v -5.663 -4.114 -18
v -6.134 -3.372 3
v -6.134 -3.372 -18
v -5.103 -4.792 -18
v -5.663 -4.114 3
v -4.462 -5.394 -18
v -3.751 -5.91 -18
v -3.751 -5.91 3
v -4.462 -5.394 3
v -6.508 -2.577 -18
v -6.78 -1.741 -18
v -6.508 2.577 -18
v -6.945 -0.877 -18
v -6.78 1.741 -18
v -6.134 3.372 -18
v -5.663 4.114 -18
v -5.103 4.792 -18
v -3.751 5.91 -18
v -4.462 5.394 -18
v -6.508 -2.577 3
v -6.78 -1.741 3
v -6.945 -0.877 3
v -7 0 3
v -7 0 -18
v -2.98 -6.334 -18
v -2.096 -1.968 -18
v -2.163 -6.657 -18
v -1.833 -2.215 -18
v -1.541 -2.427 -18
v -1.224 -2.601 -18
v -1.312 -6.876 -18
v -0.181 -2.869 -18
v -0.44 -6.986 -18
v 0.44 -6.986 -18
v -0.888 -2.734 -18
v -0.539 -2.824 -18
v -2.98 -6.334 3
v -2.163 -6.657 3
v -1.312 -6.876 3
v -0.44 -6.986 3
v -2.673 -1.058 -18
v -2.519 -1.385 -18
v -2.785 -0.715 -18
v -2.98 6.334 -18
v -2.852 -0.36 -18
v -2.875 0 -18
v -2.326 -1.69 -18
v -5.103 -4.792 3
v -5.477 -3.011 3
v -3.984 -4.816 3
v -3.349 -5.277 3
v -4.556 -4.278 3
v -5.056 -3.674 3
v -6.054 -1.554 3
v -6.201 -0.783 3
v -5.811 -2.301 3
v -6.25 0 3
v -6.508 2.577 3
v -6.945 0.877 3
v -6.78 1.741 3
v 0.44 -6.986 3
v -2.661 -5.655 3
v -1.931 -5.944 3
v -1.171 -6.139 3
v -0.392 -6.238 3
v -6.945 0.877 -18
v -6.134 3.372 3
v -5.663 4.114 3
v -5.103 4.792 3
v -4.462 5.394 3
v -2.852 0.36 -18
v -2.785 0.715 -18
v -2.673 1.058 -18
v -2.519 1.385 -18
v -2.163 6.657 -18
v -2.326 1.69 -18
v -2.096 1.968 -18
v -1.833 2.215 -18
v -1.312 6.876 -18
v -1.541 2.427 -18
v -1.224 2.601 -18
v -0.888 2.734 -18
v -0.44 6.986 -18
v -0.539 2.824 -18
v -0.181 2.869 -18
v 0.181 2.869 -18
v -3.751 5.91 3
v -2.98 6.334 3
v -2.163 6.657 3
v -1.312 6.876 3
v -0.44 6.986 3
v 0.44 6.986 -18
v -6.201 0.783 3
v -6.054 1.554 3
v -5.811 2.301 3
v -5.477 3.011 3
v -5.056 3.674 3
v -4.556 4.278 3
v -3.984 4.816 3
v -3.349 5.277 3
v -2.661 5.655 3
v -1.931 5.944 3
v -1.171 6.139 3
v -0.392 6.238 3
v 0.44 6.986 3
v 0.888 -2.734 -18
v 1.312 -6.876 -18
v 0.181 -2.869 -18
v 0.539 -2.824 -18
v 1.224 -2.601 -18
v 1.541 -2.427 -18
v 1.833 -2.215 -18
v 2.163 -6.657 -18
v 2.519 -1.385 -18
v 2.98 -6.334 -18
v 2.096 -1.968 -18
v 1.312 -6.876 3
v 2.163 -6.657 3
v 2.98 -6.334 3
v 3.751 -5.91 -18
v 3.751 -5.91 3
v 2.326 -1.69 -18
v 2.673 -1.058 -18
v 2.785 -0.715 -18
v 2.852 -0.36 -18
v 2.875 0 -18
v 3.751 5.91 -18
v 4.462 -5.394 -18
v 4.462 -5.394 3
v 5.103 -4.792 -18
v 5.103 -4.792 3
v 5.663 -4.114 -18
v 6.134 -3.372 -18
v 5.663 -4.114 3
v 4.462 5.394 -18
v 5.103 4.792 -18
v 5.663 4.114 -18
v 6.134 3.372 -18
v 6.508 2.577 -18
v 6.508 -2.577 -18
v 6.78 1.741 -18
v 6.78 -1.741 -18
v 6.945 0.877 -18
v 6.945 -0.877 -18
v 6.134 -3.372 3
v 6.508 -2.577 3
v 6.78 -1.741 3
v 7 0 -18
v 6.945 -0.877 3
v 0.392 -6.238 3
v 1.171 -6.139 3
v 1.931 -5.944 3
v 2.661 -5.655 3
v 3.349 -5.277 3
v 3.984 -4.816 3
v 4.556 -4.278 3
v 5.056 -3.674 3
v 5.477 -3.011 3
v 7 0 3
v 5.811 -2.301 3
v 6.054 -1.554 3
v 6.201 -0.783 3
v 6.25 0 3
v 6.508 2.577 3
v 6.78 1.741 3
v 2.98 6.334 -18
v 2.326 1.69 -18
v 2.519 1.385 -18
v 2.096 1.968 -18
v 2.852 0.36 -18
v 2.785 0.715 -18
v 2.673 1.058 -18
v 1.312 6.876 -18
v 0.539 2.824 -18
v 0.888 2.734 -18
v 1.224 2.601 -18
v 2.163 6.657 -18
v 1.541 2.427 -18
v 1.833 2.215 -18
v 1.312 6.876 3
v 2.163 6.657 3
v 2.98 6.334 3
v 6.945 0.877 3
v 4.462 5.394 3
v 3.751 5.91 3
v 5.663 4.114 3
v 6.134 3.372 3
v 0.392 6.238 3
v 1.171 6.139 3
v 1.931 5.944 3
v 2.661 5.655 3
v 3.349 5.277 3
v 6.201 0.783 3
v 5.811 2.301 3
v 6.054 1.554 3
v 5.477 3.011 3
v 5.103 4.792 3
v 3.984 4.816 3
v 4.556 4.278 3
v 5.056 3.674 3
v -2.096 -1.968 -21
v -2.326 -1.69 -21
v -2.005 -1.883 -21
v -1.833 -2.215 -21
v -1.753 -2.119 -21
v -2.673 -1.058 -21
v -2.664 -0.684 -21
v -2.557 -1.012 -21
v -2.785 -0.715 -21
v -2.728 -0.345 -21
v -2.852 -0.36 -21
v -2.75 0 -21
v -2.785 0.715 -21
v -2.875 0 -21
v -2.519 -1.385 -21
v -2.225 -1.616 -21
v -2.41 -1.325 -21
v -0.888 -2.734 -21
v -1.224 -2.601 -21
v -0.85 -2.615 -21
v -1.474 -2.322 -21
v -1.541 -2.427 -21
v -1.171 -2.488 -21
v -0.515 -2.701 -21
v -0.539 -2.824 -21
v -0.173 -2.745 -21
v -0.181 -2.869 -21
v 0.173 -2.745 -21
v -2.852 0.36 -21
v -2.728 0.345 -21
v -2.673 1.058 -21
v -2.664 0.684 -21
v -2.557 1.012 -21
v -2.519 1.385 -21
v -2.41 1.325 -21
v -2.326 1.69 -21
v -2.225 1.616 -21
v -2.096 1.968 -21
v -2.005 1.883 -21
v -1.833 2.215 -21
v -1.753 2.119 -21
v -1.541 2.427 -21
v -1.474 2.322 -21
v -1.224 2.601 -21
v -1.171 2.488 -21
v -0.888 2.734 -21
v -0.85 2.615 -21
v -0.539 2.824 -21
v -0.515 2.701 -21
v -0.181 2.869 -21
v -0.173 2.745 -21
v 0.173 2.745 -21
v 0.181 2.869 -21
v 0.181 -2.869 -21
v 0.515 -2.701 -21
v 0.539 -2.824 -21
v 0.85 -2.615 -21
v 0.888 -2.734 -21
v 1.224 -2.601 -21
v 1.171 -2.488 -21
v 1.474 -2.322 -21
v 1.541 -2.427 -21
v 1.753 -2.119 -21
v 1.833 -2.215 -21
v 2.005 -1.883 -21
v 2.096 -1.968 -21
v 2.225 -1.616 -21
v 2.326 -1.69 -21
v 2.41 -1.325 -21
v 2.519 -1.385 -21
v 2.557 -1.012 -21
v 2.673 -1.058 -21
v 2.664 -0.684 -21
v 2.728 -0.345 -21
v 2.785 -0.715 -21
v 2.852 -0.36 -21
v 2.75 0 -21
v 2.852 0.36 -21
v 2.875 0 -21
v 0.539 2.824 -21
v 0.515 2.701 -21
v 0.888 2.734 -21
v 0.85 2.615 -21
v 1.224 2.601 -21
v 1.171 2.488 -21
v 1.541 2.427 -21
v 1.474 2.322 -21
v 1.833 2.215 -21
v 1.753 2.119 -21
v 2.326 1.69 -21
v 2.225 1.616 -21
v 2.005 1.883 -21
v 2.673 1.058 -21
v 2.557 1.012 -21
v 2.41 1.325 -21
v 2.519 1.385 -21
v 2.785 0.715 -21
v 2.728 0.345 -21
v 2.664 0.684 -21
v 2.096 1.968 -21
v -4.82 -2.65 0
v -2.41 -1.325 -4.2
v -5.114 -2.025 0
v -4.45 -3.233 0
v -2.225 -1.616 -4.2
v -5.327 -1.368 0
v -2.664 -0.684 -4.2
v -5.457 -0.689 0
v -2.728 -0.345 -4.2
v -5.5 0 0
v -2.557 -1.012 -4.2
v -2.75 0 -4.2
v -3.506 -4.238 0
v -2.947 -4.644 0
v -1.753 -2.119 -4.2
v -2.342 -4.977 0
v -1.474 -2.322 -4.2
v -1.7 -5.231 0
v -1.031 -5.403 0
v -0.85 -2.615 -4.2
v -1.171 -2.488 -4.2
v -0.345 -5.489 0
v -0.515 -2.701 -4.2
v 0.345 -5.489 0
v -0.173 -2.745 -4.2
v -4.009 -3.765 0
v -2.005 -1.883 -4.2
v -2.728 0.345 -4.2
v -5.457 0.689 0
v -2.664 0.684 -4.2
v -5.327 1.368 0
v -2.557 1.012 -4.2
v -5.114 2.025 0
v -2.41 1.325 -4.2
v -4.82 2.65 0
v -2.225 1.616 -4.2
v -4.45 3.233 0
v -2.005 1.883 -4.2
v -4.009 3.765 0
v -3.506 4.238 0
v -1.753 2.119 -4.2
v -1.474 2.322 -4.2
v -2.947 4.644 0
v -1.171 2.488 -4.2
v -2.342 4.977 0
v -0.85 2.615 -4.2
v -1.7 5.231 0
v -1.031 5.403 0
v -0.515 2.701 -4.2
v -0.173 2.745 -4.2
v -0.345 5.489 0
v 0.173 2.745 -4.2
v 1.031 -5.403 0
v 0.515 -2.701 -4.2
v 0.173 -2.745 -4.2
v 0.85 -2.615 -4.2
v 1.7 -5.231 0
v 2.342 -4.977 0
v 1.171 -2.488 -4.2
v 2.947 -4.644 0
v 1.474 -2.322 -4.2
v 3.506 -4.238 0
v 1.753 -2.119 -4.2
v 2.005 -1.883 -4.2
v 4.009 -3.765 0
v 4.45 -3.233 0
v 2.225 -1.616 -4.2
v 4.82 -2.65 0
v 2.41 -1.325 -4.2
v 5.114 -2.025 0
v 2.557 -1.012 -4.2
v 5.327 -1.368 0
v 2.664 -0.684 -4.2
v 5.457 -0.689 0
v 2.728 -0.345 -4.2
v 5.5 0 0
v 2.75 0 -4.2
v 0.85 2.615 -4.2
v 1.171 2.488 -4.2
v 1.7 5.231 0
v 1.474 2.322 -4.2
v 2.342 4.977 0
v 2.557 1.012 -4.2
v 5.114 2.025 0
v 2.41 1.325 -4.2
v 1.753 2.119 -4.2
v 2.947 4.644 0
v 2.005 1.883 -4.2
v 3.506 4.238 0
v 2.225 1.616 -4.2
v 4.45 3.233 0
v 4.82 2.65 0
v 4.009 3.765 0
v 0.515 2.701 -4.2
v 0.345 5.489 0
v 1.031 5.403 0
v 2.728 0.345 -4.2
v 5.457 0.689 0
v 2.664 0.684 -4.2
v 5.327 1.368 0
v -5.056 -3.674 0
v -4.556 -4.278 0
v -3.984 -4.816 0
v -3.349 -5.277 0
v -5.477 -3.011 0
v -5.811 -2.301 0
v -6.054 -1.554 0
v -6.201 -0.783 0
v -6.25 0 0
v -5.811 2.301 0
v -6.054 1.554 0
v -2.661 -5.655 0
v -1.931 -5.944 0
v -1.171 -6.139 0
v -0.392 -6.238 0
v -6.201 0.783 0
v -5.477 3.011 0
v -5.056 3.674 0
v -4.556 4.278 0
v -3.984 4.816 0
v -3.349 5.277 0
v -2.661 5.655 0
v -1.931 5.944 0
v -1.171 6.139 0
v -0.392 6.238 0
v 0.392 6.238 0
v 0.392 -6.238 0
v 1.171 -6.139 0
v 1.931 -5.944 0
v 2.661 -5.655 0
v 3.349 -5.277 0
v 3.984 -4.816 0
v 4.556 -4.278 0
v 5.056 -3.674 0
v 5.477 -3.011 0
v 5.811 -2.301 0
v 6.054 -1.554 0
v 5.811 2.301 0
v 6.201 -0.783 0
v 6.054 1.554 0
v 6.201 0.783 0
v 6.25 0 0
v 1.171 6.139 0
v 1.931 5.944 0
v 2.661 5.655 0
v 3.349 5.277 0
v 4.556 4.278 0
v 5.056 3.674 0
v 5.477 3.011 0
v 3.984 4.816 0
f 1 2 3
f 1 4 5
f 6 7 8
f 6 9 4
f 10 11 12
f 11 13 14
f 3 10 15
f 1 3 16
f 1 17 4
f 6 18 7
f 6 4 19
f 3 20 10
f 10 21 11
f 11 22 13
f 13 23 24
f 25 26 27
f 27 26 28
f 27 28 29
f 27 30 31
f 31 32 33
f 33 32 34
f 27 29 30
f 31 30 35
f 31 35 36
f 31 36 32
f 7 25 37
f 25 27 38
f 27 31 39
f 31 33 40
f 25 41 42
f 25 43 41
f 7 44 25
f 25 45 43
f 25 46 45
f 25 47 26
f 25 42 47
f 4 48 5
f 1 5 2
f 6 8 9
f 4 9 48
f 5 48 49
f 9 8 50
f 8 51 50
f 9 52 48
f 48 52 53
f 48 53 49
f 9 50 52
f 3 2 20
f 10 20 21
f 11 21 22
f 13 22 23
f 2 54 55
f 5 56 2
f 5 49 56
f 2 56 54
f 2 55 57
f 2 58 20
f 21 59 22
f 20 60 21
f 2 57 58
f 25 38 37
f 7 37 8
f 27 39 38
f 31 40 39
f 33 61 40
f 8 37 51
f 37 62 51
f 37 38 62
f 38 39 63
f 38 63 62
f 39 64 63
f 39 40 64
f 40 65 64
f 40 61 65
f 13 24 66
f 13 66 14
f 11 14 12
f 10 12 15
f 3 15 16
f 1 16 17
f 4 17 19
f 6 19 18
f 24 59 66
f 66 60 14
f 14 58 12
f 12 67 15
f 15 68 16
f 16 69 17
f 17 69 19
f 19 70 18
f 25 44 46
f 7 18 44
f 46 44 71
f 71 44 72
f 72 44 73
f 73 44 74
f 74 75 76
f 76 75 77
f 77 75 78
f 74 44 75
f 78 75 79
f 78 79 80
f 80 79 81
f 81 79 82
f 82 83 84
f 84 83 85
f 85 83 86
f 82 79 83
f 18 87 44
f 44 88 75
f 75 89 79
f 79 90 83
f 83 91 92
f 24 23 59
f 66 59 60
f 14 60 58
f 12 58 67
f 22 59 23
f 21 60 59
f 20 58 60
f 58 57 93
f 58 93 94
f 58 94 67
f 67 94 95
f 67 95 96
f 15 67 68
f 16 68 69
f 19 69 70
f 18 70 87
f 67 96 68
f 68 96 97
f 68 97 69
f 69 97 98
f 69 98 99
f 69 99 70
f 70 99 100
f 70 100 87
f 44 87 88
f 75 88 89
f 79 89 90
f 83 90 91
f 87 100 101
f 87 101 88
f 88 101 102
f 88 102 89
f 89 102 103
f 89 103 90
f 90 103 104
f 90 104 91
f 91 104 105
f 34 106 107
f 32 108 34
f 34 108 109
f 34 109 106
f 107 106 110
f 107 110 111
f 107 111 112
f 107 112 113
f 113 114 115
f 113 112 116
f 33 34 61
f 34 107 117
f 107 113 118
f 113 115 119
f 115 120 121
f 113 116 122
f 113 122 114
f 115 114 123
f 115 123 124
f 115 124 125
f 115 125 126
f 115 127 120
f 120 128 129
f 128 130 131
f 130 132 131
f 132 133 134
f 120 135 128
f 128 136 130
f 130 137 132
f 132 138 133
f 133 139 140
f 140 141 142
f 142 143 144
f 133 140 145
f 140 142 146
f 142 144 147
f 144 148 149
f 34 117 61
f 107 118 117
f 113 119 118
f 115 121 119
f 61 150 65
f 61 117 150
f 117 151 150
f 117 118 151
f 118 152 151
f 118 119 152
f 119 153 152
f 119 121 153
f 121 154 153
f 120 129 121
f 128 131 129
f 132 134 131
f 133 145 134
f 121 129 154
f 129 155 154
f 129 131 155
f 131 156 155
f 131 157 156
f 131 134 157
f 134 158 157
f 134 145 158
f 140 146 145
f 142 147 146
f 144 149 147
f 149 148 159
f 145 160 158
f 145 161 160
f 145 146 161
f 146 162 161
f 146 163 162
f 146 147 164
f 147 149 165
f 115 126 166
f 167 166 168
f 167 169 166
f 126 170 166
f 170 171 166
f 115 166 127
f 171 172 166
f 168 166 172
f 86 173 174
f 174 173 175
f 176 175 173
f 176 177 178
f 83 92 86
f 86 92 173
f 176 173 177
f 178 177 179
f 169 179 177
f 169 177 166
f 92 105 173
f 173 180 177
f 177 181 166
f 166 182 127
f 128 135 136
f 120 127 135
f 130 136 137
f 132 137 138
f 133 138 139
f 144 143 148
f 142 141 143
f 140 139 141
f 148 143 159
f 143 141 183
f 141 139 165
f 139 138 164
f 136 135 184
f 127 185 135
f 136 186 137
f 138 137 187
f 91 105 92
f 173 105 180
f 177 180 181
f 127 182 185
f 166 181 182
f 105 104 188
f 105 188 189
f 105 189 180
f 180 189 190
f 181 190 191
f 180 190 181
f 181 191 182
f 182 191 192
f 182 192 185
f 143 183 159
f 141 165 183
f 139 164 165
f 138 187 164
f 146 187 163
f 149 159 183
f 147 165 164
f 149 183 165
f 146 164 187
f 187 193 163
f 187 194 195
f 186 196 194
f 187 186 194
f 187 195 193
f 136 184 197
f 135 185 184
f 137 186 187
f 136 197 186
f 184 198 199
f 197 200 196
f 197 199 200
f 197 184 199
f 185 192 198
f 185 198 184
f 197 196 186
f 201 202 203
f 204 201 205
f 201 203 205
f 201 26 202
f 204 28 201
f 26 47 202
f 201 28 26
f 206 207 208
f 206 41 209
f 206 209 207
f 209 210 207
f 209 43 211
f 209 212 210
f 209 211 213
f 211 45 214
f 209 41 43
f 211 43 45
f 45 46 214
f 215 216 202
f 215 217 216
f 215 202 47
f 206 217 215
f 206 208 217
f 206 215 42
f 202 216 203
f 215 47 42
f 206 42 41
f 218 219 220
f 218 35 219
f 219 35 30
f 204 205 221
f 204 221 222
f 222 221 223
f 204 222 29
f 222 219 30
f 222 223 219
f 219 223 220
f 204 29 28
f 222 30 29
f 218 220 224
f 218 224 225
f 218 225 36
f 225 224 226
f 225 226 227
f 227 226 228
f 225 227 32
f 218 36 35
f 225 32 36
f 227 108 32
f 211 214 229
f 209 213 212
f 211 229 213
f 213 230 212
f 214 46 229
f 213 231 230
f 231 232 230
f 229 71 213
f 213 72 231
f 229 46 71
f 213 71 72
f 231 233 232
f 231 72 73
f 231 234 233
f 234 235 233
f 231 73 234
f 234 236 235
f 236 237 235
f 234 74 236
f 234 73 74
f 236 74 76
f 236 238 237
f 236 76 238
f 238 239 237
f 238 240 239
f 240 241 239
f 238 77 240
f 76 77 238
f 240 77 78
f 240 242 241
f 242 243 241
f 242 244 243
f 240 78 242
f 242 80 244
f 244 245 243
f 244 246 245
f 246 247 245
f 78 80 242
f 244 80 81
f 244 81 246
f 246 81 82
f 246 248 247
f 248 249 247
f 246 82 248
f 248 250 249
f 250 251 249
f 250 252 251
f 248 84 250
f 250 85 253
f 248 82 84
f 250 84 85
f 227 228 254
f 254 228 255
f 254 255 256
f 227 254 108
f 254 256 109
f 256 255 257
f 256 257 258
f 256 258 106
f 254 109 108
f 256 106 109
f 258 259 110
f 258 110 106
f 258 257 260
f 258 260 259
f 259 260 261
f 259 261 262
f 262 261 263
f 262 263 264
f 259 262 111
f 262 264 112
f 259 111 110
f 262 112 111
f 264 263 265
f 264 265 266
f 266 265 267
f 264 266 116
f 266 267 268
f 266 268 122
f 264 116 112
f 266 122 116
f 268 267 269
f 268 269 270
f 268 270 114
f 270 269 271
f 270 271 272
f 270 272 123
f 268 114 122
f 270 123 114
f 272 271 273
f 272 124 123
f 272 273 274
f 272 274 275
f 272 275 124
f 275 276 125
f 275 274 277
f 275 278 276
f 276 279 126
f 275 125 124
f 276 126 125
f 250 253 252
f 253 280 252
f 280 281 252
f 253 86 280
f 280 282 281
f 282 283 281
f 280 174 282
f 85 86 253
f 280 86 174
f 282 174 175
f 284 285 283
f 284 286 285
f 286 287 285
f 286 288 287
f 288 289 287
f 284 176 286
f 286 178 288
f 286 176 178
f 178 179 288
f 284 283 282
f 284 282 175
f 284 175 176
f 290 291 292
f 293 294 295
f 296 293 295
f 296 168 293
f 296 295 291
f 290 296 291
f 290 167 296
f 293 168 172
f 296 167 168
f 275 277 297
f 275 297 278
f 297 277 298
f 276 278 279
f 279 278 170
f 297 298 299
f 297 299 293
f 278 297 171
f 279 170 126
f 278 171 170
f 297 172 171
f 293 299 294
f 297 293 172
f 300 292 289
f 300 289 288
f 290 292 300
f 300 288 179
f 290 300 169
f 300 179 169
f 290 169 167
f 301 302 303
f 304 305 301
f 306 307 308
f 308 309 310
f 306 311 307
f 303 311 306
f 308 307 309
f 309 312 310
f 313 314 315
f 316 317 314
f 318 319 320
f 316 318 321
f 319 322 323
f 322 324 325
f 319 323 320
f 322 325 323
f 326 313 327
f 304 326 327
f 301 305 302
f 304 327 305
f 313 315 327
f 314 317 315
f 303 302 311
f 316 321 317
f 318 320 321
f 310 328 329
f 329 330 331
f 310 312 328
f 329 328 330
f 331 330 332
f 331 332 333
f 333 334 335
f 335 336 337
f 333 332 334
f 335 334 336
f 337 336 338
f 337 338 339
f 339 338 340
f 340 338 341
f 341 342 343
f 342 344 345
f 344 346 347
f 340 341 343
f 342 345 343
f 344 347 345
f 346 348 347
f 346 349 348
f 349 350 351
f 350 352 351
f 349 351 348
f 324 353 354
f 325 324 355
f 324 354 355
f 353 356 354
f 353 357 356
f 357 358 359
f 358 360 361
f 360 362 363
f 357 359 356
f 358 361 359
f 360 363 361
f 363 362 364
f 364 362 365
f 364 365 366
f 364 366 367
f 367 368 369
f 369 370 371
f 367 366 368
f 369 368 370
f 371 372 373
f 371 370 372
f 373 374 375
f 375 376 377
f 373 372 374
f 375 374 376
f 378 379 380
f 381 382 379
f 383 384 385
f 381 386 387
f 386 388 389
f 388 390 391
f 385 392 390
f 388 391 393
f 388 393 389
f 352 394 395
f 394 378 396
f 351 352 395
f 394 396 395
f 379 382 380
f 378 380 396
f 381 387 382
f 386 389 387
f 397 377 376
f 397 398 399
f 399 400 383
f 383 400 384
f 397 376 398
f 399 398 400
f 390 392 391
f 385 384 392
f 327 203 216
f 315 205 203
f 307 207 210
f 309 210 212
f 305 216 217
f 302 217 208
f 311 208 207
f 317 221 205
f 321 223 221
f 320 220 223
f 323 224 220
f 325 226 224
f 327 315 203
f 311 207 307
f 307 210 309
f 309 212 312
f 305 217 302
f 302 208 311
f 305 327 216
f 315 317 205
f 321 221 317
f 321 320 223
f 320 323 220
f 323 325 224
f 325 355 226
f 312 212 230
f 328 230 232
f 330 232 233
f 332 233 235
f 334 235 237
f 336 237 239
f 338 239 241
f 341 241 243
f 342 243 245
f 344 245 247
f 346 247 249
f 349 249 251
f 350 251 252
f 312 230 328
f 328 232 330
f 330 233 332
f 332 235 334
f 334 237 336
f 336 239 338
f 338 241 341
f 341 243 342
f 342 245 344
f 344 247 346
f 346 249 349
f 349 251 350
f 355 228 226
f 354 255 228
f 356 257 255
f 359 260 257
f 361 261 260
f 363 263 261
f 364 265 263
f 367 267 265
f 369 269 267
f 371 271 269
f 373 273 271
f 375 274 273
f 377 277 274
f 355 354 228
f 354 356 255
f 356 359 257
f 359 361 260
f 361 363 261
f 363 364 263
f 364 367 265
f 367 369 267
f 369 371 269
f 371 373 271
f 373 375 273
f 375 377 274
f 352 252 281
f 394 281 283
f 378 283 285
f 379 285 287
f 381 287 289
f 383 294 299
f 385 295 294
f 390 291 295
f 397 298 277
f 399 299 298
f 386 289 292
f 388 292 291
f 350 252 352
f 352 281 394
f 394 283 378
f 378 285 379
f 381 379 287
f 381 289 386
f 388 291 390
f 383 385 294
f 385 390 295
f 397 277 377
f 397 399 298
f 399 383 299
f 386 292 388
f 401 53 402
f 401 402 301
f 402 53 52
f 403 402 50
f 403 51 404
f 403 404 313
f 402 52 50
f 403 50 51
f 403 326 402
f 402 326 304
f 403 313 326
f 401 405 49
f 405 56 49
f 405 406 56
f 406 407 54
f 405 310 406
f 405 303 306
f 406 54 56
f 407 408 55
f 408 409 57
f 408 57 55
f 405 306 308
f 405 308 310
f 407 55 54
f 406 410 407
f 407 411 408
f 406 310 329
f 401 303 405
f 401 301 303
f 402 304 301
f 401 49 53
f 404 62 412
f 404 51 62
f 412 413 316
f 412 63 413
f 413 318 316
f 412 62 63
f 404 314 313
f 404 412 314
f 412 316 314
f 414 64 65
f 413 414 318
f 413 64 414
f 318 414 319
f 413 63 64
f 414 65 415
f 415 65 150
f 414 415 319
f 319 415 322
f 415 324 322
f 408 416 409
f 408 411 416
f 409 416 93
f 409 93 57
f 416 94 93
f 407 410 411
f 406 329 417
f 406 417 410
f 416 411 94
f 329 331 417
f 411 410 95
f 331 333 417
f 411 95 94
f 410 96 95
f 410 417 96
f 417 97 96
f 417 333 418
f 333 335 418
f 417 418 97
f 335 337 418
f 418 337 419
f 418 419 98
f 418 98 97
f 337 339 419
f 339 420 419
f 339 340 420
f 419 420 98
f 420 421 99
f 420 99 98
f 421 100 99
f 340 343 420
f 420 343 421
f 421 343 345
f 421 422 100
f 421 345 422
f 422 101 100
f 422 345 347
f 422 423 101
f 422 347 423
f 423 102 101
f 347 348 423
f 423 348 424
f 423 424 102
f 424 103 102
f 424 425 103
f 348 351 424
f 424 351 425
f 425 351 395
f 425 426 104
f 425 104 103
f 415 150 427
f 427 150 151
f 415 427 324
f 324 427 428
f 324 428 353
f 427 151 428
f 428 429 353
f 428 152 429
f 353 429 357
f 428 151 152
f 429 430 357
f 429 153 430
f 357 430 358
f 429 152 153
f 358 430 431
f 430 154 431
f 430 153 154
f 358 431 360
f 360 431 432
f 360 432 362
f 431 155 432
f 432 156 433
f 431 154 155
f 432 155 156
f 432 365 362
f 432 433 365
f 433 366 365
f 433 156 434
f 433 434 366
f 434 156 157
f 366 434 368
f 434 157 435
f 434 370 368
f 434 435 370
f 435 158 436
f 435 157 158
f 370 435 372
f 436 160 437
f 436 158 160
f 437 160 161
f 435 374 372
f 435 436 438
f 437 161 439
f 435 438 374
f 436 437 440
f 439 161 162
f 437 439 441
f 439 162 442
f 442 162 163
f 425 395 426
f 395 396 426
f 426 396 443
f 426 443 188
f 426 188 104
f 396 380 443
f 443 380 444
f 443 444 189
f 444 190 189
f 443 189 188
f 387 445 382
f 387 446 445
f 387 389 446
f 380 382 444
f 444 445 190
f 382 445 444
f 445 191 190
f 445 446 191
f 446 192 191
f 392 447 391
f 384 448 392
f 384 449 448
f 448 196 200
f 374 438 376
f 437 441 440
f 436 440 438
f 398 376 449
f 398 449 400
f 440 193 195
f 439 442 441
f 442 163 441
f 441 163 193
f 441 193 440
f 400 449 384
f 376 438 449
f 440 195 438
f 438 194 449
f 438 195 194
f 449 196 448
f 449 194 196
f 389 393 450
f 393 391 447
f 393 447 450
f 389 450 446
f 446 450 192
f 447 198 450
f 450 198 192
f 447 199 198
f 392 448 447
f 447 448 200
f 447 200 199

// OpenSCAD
$fn = 50;

difference() {
	union() {
		translate(v = [0, 0, -18.0]) {
			cylinder(h = 21, r = 7.0);
		}
		#translate(v = [0, 0, -21.0]) {
			cylinder(h = 21, r = 2.875);
		}
	}
	union() {
		translate(v = [0, 0, 0]) {
			rotate(a = [0, 0, 0]) {
				difference() {
					union() {
						translate(v = [0, 0, -21.0]) {
							cylinder(h = 21, r = 2.25);
						}
						translate(v = [0, 0, -4.2]) {
							cylinder(h = 4.2, r1 = 2.75, r2 = 5.5);
						}
						translate(v = [0, 0, -21.0]) {
							cylinder(h = 21, r = 2.75);
						}
						translate(v = [0, 0, -21.0]) {
							cylinder(h = 21, r = 2.25);
						}
					}
					union();
				}
			}
		}
		#cylinder(h = 3, r = 6.25);
	}
}
